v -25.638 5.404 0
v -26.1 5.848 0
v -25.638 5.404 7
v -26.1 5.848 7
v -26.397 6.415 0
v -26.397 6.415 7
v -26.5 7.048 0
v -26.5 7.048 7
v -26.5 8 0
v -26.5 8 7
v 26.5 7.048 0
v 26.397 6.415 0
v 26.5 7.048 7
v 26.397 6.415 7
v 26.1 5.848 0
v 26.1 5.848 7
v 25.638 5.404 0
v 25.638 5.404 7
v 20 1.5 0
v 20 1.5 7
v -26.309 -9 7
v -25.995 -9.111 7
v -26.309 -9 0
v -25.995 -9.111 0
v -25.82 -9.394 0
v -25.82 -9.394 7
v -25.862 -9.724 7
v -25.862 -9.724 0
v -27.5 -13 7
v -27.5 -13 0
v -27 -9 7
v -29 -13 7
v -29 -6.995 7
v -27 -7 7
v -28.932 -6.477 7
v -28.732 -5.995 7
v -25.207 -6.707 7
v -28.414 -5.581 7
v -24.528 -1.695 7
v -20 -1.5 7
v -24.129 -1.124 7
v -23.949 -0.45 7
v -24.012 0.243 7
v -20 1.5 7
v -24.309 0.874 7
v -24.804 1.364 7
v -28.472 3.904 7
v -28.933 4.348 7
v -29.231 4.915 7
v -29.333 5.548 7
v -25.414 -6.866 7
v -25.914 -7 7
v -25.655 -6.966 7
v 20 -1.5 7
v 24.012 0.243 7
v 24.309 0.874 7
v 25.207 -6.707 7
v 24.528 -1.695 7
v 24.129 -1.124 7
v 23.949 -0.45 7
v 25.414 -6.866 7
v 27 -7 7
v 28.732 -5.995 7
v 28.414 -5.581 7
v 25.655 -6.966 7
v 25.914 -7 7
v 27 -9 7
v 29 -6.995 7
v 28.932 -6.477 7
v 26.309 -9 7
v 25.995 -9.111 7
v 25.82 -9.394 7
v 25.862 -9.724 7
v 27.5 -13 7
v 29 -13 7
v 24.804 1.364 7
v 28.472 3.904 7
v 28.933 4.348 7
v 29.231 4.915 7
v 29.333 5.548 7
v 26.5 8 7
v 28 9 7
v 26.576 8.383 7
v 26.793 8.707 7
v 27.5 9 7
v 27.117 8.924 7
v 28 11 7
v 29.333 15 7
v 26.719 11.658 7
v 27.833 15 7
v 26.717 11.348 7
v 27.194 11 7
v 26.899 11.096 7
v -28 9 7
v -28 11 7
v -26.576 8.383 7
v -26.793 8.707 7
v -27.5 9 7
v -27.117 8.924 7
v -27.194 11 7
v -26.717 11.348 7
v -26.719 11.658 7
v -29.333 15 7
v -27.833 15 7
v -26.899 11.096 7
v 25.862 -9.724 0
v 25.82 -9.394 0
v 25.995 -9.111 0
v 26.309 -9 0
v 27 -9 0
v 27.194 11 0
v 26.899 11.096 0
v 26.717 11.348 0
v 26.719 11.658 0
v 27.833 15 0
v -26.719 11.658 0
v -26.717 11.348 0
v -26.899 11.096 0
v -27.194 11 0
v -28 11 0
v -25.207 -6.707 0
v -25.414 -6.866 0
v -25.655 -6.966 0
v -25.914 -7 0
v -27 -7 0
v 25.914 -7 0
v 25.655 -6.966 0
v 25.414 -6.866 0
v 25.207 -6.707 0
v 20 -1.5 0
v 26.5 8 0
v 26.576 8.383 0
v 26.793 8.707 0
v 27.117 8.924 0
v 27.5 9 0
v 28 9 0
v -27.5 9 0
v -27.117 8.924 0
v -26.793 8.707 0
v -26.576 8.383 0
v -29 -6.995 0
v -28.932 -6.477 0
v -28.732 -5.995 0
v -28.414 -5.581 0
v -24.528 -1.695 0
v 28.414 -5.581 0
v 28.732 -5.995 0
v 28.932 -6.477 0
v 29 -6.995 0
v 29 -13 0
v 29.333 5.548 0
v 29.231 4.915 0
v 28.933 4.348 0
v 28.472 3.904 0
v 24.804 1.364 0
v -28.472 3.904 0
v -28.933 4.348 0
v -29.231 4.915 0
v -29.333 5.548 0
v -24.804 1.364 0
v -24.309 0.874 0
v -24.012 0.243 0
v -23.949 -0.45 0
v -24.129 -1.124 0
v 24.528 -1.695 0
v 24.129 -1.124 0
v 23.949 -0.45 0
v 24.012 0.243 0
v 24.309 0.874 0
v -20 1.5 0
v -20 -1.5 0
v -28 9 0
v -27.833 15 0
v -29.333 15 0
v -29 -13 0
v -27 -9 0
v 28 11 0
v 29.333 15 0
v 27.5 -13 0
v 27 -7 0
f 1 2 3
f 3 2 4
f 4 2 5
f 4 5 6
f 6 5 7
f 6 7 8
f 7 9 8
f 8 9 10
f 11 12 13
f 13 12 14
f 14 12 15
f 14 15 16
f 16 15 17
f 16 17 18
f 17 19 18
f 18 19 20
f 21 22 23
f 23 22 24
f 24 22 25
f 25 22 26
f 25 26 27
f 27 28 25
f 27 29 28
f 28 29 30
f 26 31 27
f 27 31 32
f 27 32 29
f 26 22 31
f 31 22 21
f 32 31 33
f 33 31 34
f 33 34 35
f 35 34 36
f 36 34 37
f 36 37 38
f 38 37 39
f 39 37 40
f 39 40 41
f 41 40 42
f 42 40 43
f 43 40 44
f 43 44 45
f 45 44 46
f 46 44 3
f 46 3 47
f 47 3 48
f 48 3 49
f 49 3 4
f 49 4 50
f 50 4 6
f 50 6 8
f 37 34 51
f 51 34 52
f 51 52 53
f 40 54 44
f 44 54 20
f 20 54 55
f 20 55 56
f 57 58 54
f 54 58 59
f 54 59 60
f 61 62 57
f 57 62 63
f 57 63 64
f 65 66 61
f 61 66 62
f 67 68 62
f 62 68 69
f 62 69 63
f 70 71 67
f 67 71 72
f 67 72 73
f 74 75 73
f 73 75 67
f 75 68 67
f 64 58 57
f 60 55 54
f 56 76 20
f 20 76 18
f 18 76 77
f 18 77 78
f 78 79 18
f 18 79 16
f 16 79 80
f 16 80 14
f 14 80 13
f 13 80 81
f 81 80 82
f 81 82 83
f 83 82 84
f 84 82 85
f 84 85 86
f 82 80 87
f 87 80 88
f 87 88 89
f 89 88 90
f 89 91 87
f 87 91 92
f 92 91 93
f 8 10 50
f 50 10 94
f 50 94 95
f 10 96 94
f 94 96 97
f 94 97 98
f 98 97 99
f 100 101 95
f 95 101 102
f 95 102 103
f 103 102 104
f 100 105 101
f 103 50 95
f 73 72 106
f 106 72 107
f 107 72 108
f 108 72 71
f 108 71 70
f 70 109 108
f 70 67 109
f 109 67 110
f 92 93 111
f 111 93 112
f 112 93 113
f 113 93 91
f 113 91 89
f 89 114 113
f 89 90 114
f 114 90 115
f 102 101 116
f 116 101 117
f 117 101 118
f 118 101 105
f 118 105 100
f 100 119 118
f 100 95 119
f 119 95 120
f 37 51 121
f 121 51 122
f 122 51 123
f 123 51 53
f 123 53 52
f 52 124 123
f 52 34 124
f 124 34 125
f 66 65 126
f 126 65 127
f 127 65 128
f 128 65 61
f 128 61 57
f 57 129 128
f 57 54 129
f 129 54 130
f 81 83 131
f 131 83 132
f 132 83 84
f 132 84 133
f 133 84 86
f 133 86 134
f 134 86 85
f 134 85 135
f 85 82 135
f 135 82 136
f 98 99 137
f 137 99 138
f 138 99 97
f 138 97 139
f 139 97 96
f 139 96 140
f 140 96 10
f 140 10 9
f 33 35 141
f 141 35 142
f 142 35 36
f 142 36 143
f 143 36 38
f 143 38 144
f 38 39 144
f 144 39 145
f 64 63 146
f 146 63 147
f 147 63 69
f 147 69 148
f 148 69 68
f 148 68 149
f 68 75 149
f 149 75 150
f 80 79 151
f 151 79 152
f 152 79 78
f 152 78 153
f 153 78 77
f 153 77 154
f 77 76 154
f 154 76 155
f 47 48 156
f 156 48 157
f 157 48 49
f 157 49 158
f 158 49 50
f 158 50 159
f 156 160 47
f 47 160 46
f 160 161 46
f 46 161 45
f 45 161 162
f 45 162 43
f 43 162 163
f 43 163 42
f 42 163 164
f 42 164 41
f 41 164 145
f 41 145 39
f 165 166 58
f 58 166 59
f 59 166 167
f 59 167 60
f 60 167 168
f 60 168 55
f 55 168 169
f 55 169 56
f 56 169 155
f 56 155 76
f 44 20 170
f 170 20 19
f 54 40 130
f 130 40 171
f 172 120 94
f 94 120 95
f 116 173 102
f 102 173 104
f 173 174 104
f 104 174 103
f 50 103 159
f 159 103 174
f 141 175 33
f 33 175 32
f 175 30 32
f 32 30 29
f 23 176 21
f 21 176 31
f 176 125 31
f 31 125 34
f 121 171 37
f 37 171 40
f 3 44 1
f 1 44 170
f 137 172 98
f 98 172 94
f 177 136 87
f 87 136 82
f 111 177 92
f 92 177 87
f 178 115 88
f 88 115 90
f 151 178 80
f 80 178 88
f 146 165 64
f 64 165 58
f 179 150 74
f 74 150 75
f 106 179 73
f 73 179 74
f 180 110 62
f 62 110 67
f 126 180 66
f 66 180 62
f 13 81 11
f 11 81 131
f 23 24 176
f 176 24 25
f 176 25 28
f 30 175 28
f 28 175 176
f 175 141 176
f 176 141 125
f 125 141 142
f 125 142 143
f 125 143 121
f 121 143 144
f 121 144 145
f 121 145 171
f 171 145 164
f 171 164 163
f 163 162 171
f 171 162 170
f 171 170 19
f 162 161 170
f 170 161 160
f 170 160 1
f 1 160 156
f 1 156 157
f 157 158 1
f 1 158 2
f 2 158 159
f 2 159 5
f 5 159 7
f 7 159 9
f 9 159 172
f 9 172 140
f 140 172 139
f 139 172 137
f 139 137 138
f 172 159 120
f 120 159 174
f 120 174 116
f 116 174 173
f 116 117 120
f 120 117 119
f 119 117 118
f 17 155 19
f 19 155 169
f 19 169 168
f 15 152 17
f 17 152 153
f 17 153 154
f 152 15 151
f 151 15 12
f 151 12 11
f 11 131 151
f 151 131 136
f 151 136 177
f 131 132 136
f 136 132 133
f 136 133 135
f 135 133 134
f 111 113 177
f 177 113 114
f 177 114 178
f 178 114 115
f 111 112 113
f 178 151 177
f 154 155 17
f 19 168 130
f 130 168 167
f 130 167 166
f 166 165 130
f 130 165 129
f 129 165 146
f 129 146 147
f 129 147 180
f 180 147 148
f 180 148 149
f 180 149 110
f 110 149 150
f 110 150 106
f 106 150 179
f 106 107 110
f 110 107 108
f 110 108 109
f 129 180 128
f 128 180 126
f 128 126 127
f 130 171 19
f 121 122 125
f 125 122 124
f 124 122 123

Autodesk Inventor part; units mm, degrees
ref_plane "YZ Plane" through (0, 0, 0) normal (1, 0, 0) x (0, 1, 0)
ref_plane "XZ Plane" through (0, 0, 0) normal (0, 1, 0) x (-1, 0, 0)
ref_plane "XY Plane" through (0, 0, 0) normal (0, 0, 1) x (1, 0, 0)
sketch "Sketch1" plane through (0, 0, 0) normal (0, 0, 1) x (1, 0, 0)
  line L0 (-28, 11) -> (28, 11)
  line L1 (28, 11) -> (28, 9)
  line L2 (28, 9) -> (-28, 9)
  line L3 (-28, 9) -> (-28, 11)
  line L4 (-27, -7) -> (27, -7)
  line L5 (27, -7) -> (27, -9)
  line L6 (27, -9) -> (-27, -9)
  line L7 (-27, -9) -> (-27, -7)
  line L8 (-20, 1.5) -> (20, 1.5)
  line L9 (20, 1.5) -> (20, -1.5)
  line L10 (20, -1.5) -> (-20, -1.5)
  line L11 (-20, -1.5) -> (-20, 1.5)
  line L12 (26.5, 11) -> (27.8333, 15)
  line L13 (27.8333, 15) -> (29.3333, 15)
  line L14 (29.3333, 15) -> (29.3333, 4.5)
  line L15 (29.3333, 4.5) -> (22.8333, 0)
  line L16 (22.8333, 0) -> (29, -6.1667)
  line L17 (29, -6.1667) -> (29, -13)
  line L18 (29, -13) -> (27.5, -13)
  line L19 (27.5, -13) -> (25.5, -9)
  line L20 (20, -1.5) -> (25.5, -7)
  line L21 (26.5, 9) -> (28, 9)
  line L22 (28, 9) -> (28, 11)
  line L23 (28, 11) -> (26.5, 11)
  line L24 (26.5, 9) -> (26.5, 6)
  line L25 (26.5, 6) -> (20, 1.5)
  point P0 (0, 0)
  point P1 (0, 9)
  point P2 (0, -7)
  point P3 (0, -1.5)
  point P4 (20, 0)
  dimension "d0" = 2
  dimension "d1" = 2
  dimension "d2" = 56
  dimension "d3" = 54
  dimension "d4" = 7
  dimension "d6" = 3
  dimension "d7" = 40
  dimension "d8" = 1.5
  dimension "d9" = 1.5
  dimension "d10" = 1.5
  dimension "d11" = 1.5
  dimension "d13" = 2
  dimension "d14" = 1.5
  dimension "d16" = 4
  dimension "d17" = 4
  dimension "d18" = 1.5
  dimension "d26" = 3
  dimension "d28" = 15
extrude "Extrusion1" add sketch "Sketch1" along normal blind 7 contours L12 L13 L14 L15 L16 L17 L18 L19 L6 L5 L4 L20 L9 L25 L24 L2 L1 L0
mirror "Mirror1" about plane through (0, 0, 0) normal (1, 0, 0) of "Extrusion1"
sketch "Sketch2" plane through (0, 0, 0) normal (0, 0, 1) x (1, 0, 0)
  line L0 (-20, 1.5) -> (-20, -1.5) projected
  line L1 (20, 1.5) -> (20, -1.5) projected
  line L2 (-20, 1.5) -> (20, 1.5)
  line L3 (20, 1.5) -> (20, -1.5)
  line L4 (20, -1.5) -> (-20, -1.5)
  line L5 (-20, -1.5) -> (-20, 1.5)
  point P0 (0, 0)
extrude "Extrusion2" add sketch "Sketch2" along normal up to surface (7 mm away)
fillet "Fillet1" radius 2 6 edges at (22.8333, 0, 3.5) (-22.8333, 0, 3.5) (-29.3333, 4.5, 3.5) (29.3333, 4.5, 3.5) (29, -6.1667, 3.5) (-29, -6.1667, 3.5)
fillet "Fillet2" radius 1 4 edges at (-26.5, 9, 3.5) (26.5, 9, 3.5) (25.5, -7, 3.5) (-25.5, -7, 3.5)
fillet "Fillet3" radius 0.5 4 edges at (-26.5, 11, 3.5) (26.5, 11, 3.5) (25.5, -9, 3.5) (-25.5, -9, 3.5)
fillet "Fillet4" radius 2 2 edges at (26.5, 6, 3.5) (-26.5, 6, 3.5)
properties part number "conector-rpi-arduino-improved"
